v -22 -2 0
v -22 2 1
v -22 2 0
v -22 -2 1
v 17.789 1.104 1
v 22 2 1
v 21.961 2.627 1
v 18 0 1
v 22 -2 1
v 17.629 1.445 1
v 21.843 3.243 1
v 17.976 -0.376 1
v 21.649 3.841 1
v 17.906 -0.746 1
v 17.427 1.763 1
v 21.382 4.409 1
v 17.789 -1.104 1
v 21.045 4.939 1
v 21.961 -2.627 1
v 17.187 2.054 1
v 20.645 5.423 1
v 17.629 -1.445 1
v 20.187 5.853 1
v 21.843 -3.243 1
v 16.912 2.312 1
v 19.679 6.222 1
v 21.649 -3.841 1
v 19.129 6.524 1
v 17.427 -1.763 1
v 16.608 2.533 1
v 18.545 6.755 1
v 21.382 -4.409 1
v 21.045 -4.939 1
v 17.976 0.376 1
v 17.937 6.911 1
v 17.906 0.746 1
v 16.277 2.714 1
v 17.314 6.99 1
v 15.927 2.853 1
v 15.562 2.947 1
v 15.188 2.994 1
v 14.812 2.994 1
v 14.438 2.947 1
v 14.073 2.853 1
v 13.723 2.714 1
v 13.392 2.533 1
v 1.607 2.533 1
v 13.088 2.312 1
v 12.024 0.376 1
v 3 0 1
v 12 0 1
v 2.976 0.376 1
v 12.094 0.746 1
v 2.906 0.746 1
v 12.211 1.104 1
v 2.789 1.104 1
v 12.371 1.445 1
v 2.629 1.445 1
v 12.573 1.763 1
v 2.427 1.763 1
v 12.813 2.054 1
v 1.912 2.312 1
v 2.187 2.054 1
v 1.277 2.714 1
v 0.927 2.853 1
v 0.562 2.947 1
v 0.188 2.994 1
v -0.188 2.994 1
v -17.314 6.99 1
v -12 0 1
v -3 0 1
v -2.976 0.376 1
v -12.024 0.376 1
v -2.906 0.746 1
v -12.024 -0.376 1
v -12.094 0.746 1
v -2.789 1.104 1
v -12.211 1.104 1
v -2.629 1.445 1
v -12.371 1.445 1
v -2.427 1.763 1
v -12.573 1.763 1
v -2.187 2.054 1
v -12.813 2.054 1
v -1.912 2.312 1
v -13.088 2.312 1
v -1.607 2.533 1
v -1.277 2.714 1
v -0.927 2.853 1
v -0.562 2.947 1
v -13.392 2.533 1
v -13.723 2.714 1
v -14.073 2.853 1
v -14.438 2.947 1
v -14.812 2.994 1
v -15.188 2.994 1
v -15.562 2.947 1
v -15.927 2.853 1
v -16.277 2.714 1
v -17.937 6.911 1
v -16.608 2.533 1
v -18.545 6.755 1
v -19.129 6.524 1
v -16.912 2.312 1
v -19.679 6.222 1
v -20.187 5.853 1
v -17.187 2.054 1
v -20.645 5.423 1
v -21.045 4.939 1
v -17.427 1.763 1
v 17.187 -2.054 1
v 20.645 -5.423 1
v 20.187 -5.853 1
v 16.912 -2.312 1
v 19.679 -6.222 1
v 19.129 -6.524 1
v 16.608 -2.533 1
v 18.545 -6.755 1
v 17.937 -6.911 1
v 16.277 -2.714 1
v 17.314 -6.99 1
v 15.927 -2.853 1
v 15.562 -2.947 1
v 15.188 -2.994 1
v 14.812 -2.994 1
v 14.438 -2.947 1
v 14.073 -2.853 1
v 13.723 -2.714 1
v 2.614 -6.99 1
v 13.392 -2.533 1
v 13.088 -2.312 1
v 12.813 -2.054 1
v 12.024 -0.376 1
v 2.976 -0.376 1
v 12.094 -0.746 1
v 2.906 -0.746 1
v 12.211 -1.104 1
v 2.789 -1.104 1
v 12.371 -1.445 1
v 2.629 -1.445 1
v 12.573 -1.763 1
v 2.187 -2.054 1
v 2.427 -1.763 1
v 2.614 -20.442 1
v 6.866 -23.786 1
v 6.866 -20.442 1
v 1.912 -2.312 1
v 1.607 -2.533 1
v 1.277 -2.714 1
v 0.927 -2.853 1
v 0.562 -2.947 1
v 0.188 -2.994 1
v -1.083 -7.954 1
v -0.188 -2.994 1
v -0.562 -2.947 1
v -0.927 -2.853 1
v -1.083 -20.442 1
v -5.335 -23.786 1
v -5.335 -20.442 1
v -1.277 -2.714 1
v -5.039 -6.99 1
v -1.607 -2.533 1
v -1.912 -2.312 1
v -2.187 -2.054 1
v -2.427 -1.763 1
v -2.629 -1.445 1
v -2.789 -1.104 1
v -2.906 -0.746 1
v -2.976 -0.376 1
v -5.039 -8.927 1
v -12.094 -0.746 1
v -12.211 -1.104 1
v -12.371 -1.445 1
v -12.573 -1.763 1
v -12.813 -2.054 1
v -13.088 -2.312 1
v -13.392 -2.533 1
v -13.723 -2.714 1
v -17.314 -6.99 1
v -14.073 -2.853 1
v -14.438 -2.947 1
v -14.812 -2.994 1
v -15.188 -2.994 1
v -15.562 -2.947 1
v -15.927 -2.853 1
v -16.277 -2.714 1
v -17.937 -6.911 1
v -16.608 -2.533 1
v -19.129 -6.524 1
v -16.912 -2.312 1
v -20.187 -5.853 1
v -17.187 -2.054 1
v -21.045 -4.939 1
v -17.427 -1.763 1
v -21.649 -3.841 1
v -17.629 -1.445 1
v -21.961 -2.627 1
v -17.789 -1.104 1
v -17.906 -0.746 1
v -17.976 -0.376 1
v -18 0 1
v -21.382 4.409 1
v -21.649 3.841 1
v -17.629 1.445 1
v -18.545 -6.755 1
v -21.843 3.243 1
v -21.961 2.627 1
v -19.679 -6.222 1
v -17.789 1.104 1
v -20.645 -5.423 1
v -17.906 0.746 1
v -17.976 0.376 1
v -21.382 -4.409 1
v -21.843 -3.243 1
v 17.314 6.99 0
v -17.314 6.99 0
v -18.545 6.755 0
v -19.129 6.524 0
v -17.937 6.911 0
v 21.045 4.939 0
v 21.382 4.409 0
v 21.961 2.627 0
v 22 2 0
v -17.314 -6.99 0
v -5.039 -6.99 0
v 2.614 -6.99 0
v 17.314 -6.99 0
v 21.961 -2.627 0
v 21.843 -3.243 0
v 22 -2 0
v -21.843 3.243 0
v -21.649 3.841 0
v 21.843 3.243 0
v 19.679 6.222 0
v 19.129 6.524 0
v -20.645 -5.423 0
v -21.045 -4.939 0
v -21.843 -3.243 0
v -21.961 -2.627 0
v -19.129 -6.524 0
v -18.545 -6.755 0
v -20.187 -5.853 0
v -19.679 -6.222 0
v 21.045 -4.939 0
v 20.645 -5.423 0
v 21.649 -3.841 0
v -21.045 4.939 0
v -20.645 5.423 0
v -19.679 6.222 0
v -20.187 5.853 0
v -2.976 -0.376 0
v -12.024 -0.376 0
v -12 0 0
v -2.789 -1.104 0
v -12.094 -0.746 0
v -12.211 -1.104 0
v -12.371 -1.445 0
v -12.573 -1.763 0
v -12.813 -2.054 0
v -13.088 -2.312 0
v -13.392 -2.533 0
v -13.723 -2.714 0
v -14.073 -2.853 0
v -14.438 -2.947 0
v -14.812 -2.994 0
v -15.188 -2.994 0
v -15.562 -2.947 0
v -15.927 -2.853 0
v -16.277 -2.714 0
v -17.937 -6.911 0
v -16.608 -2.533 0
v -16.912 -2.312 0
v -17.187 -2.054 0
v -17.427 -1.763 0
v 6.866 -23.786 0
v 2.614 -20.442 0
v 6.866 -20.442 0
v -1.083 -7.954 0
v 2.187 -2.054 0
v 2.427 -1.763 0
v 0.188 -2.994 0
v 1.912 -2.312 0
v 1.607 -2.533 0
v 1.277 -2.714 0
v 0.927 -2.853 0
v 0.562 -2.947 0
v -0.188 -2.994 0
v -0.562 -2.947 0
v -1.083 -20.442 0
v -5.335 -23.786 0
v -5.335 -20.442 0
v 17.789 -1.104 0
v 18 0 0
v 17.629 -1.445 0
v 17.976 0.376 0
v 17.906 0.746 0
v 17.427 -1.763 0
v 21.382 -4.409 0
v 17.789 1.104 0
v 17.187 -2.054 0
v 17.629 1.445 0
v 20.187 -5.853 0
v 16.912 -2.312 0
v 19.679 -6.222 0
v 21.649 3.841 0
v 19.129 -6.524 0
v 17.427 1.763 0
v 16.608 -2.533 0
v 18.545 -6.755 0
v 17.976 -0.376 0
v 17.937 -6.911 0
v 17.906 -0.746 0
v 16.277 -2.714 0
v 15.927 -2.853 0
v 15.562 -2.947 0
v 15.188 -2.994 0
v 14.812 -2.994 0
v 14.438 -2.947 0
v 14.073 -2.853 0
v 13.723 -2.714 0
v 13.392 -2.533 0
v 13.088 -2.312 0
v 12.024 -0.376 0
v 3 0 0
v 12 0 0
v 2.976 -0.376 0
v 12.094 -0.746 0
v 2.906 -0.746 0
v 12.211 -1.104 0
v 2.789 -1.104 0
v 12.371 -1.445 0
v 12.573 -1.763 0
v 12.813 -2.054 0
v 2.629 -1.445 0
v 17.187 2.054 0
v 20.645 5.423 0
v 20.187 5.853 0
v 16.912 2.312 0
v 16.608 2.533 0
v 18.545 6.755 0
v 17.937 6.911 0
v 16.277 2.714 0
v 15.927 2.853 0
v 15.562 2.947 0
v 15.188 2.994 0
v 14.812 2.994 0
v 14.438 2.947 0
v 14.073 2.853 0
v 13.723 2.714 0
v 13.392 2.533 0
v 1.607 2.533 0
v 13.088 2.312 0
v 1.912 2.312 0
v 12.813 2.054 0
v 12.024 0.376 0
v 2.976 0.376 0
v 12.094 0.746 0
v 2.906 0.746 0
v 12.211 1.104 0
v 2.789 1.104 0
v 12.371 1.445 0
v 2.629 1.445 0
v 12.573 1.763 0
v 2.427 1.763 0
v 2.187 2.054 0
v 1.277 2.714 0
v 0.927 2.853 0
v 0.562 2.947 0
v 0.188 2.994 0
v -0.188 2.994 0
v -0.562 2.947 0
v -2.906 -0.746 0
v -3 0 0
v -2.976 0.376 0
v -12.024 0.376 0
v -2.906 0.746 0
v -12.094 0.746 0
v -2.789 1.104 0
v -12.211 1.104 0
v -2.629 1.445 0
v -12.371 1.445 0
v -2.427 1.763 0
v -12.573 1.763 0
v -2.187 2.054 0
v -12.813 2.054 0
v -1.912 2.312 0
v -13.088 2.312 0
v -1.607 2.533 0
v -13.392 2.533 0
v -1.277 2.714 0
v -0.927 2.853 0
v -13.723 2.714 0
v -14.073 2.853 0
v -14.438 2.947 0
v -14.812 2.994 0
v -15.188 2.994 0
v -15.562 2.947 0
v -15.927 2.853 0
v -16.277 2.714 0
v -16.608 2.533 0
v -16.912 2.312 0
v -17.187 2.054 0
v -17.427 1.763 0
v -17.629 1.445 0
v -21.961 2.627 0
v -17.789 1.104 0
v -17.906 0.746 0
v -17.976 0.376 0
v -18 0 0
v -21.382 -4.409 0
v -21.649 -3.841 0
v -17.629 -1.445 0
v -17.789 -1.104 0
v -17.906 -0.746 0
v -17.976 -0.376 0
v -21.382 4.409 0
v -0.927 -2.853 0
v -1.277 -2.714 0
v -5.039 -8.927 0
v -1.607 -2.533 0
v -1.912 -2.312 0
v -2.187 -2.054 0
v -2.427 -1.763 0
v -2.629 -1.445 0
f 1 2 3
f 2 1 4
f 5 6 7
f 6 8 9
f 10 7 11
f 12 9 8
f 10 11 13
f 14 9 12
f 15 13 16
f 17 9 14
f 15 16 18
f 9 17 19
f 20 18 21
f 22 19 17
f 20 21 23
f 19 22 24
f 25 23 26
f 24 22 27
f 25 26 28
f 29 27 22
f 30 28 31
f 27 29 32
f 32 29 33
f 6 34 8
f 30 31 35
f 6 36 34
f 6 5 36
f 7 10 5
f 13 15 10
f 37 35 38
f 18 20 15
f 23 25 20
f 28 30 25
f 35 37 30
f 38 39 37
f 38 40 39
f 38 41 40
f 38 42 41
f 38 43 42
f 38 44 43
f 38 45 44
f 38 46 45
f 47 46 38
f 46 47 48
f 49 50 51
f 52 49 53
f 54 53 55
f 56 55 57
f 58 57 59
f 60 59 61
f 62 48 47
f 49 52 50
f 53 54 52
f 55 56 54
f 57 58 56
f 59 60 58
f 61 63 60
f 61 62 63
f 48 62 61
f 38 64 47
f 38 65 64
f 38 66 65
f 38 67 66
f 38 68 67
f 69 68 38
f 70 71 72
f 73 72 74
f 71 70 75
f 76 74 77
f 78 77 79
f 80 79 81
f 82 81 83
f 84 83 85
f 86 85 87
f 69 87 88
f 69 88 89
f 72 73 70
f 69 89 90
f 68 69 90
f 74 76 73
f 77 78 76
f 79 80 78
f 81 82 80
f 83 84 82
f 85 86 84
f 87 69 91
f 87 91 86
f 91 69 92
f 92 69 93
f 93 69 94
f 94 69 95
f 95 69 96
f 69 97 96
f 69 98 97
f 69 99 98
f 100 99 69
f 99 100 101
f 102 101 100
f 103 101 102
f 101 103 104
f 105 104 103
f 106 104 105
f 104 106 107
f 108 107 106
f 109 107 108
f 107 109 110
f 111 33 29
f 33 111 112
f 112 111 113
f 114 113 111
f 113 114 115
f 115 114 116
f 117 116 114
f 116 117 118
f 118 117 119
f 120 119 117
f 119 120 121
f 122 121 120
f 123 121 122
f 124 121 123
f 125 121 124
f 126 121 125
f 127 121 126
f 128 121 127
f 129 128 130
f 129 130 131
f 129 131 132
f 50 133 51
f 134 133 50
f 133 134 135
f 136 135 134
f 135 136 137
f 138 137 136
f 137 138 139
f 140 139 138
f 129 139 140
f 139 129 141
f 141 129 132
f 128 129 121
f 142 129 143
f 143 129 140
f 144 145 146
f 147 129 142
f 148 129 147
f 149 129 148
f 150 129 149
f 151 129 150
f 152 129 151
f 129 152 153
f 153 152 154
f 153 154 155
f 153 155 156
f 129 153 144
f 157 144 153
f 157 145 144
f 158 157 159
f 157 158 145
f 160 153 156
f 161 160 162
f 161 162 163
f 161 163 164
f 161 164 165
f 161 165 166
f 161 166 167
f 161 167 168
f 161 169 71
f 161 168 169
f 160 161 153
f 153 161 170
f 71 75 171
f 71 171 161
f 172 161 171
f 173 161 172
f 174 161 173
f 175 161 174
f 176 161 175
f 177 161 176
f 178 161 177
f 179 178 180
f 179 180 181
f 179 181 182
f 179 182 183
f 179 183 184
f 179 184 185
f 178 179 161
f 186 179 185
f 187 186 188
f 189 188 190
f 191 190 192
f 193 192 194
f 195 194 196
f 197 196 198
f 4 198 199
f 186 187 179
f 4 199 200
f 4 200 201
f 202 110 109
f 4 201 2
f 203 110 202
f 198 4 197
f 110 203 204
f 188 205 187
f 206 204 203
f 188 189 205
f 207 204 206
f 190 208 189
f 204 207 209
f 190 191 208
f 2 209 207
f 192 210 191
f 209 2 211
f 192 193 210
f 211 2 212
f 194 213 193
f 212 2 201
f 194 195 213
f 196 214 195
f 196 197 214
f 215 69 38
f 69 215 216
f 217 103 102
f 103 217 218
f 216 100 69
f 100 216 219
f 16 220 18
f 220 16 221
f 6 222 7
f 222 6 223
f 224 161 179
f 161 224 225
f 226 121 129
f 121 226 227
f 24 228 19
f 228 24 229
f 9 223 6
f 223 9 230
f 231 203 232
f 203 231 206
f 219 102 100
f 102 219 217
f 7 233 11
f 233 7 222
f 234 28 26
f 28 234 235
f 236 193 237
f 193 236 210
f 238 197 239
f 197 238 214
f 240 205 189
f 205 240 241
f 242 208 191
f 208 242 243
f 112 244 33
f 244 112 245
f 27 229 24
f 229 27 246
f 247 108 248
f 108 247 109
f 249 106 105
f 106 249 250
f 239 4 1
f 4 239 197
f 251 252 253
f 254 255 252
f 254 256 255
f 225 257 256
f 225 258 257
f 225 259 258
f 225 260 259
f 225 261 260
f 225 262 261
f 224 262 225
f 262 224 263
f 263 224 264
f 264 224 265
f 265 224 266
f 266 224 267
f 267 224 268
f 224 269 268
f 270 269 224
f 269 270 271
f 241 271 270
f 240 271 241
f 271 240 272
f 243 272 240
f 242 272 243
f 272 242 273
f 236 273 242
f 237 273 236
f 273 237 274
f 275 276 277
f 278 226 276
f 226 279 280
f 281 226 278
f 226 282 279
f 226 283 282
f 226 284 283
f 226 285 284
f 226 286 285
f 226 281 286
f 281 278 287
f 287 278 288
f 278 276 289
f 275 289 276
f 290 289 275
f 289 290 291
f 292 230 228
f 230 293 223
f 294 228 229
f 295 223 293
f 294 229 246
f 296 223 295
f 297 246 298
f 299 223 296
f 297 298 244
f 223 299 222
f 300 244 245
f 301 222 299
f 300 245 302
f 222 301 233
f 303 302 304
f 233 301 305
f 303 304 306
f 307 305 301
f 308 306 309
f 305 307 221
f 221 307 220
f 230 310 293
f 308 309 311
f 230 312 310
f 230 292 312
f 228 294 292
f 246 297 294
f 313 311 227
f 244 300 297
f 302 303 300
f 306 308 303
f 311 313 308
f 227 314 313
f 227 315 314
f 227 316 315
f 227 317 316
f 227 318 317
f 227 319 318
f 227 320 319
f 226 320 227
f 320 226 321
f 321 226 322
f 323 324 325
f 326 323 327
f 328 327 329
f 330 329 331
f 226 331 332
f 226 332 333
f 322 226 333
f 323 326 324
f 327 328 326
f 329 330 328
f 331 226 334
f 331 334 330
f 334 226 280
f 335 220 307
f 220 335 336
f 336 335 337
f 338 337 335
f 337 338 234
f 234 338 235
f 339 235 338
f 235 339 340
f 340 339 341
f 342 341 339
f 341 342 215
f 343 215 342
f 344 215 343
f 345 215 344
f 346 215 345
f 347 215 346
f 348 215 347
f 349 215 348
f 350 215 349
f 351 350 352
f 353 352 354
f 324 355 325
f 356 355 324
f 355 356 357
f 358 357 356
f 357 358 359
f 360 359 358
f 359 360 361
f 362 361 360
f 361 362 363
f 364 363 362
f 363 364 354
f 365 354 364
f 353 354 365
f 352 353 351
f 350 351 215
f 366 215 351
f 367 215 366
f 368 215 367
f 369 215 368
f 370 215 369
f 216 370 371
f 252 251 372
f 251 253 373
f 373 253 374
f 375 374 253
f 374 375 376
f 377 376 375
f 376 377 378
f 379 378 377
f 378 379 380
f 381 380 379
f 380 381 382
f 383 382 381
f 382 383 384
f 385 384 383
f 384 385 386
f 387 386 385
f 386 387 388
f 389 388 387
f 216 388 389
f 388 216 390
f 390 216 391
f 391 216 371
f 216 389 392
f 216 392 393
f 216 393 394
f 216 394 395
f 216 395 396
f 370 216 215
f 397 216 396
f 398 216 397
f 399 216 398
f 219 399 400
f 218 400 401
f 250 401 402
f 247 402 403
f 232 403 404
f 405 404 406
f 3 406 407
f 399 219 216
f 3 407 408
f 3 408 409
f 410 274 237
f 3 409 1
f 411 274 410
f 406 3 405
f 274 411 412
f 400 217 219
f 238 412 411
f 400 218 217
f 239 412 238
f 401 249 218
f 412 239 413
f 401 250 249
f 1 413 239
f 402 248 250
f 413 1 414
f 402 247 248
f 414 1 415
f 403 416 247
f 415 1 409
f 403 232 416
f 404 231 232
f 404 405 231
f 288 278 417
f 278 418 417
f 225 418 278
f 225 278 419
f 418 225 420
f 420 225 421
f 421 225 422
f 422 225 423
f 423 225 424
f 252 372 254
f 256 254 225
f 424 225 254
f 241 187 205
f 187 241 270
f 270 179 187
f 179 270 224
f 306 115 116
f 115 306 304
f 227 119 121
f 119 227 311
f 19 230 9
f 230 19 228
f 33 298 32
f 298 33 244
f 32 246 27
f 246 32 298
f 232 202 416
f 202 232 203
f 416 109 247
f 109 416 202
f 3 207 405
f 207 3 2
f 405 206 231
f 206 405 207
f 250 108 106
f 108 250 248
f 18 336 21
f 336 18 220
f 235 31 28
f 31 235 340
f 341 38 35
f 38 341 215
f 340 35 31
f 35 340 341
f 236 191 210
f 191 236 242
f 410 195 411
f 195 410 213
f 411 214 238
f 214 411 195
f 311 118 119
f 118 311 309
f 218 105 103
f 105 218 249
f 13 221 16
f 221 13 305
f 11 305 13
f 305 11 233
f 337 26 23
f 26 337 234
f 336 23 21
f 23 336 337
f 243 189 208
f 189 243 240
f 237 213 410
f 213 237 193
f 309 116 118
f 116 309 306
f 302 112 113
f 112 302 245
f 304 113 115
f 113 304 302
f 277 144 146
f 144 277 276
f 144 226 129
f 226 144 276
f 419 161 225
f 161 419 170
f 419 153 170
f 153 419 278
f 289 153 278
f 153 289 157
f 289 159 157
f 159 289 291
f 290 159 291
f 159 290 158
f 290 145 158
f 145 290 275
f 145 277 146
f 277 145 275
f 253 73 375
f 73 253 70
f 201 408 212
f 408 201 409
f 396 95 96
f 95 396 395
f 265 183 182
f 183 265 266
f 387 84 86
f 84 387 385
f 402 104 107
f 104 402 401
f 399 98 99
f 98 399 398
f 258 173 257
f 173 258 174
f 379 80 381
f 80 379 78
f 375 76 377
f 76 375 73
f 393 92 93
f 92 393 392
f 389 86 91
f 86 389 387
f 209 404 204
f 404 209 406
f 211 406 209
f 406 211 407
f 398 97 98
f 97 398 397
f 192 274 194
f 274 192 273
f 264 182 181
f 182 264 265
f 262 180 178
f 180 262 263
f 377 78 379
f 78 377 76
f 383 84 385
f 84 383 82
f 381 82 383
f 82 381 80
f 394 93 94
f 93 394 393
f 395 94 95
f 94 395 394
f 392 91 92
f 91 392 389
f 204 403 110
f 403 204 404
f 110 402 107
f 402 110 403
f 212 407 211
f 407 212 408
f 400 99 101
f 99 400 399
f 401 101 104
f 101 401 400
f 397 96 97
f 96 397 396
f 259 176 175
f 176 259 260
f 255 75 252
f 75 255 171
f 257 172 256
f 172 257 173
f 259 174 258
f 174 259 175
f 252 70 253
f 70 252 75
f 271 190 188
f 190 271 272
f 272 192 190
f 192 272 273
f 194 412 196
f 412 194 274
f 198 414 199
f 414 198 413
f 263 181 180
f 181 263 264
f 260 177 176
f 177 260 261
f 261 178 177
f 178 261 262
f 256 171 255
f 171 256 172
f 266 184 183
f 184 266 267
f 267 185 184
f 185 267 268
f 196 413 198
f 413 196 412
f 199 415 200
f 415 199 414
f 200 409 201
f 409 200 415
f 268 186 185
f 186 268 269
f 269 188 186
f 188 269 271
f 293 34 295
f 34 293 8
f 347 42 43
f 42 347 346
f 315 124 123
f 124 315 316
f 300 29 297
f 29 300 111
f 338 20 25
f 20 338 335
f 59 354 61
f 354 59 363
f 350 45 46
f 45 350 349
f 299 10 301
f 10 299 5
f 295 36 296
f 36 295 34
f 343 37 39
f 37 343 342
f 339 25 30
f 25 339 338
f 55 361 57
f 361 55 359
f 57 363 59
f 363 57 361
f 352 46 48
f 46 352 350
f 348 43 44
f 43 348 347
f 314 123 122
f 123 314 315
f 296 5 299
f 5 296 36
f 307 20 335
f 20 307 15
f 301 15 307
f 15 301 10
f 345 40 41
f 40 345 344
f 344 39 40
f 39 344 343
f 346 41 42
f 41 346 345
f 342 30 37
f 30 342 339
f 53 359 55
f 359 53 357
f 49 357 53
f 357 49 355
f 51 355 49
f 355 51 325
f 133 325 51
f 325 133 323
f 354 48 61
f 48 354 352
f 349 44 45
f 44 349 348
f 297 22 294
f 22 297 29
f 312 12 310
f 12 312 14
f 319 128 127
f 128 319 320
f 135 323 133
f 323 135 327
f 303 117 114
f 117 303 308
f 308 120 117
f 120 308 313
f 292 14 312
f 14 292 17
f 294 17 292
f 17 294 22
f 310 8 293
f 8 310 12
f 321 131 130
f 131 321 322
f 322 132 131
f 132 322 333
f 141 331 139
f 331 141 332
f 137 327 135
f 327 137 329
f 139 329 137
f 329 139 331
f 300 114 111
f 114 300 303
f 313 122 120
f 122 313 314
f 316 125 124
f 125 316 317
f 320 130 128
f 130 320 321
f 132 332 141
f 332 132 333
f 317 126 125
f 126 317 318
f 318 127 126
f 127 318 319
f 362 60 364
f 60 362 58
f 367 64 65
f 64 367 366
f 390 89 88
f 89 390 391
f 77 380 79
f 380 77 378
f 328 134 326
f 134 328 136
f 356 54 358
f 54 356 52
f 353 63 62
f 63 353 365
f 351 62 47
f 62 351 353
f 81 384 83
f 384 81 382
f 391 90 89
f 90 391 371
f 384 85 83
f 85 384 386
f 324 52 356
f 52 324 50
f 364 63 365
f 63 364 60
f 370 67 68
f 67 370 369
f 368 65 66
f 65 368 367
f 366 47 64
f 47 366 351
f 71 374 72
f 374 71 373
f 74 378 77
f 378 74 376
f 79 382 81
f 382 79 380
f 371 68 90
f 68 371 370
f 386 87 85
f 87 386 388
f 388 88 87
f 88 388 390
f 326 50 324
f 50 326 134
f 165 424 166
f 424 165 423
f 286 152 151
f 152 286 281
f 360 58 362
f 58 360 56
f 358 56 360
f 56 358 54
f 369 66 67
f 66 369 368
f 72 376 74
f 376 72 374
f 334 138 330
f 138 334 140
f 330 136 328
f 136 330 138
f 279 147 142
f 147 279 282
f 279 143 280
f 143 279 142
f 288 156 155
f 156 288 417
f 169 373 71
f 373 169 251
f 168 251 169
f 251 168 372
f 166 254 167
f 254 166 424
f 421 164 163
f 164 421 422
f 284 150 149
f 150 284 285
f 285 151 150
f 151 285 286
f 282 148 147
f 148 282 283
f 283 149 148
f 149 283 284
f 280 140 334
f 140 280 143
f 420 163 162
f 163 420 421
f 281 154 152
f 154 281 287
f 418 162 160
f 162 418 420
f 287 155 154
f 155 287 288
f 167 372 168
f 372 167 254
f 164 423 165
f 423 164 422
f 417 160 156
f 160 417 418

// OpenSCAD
$fn = 50;


difference() {
	union() {
		translate(v = [0, 0, 0]) {
			rotate(a = [0, 0, 0]) {
				hull() {
					translate(v = [-17.0000000000, 2.0000000000, 0]) {
						rotate(a = [0, 0, 0]) {
							translate(v = [0, 0, 0]) {
								rotate(a = [0, 0, 0]) {
									cylinder(h = 1, r = 5);
								}
							}
						}
					}
					translate(v = [17.0000000000, 2.0000000000, 0]) {
						rotate(a = [0, 0, 0]) {
							translate(v = [0, 0, 0]) {
								rotate(a = [0, 0, 0]) {
									cylinder(h = 1, r = 5);
								}
							}
						}
					}
					translate(v = [-17.0000000000, -2.0000000000, 0]) {
						rotate(a = [0, 0, 0]) {
							translate(v = [0, 0, 0]) {
								rotate(a = [0, 0, 0]) {
									cylinder(h = 1, r = 5);
								}
							}
						}
					}
					translate(v = [17.0000000000, -2.0000000000, 0]) {
						rotate(a = [0, 0, 0]) {
							translate(v = [0, 0, 0]) {
								rotate(a = [0, 0, 0]) {
									cylinder(h = 1, r = 5);
								}
							}
						}
					}
				}
			}
		}
		translate(v = [0, -5, 0]) {
			rotate(a = [0, 0, 0]) {
				linear_extrude(height = 1) {
					text(font = "DejaVu Sans Mono:style=Bold", halign = "center", size = 19.0000000000, text = "1", valign = "top");
				}
			}
		}
	}
	union() {
		translate(v = [-15.0000000000, 0.0000000000, -125.0000000000]) {
			rotate(a = [0, 0, 0]) {
				cylinder(h = 250, r = 3.0000000000);
			}
		}
		translate(v = [15.0000000000, 0.0000000000, -125.0000000000]) {
			rotate(a = [0, 0, 0]) {
				cylinder(h = 250, r = 3.0000000000);
			}
		}
		translate(v = [15.0000000000, 0.0000000000, -125.0000000000]) {
			rotate(a = [0, 0, 0]) {
				cylinder(h = 250, r = 3.0000000000);
			}
		}
		translate(v = [0, 0, -125.0000000000]) {
			rotate(a = [0, 0, 0]) {
				cylinder(h = 250, r = 3.0000000000);
			}
		}
	}
}
